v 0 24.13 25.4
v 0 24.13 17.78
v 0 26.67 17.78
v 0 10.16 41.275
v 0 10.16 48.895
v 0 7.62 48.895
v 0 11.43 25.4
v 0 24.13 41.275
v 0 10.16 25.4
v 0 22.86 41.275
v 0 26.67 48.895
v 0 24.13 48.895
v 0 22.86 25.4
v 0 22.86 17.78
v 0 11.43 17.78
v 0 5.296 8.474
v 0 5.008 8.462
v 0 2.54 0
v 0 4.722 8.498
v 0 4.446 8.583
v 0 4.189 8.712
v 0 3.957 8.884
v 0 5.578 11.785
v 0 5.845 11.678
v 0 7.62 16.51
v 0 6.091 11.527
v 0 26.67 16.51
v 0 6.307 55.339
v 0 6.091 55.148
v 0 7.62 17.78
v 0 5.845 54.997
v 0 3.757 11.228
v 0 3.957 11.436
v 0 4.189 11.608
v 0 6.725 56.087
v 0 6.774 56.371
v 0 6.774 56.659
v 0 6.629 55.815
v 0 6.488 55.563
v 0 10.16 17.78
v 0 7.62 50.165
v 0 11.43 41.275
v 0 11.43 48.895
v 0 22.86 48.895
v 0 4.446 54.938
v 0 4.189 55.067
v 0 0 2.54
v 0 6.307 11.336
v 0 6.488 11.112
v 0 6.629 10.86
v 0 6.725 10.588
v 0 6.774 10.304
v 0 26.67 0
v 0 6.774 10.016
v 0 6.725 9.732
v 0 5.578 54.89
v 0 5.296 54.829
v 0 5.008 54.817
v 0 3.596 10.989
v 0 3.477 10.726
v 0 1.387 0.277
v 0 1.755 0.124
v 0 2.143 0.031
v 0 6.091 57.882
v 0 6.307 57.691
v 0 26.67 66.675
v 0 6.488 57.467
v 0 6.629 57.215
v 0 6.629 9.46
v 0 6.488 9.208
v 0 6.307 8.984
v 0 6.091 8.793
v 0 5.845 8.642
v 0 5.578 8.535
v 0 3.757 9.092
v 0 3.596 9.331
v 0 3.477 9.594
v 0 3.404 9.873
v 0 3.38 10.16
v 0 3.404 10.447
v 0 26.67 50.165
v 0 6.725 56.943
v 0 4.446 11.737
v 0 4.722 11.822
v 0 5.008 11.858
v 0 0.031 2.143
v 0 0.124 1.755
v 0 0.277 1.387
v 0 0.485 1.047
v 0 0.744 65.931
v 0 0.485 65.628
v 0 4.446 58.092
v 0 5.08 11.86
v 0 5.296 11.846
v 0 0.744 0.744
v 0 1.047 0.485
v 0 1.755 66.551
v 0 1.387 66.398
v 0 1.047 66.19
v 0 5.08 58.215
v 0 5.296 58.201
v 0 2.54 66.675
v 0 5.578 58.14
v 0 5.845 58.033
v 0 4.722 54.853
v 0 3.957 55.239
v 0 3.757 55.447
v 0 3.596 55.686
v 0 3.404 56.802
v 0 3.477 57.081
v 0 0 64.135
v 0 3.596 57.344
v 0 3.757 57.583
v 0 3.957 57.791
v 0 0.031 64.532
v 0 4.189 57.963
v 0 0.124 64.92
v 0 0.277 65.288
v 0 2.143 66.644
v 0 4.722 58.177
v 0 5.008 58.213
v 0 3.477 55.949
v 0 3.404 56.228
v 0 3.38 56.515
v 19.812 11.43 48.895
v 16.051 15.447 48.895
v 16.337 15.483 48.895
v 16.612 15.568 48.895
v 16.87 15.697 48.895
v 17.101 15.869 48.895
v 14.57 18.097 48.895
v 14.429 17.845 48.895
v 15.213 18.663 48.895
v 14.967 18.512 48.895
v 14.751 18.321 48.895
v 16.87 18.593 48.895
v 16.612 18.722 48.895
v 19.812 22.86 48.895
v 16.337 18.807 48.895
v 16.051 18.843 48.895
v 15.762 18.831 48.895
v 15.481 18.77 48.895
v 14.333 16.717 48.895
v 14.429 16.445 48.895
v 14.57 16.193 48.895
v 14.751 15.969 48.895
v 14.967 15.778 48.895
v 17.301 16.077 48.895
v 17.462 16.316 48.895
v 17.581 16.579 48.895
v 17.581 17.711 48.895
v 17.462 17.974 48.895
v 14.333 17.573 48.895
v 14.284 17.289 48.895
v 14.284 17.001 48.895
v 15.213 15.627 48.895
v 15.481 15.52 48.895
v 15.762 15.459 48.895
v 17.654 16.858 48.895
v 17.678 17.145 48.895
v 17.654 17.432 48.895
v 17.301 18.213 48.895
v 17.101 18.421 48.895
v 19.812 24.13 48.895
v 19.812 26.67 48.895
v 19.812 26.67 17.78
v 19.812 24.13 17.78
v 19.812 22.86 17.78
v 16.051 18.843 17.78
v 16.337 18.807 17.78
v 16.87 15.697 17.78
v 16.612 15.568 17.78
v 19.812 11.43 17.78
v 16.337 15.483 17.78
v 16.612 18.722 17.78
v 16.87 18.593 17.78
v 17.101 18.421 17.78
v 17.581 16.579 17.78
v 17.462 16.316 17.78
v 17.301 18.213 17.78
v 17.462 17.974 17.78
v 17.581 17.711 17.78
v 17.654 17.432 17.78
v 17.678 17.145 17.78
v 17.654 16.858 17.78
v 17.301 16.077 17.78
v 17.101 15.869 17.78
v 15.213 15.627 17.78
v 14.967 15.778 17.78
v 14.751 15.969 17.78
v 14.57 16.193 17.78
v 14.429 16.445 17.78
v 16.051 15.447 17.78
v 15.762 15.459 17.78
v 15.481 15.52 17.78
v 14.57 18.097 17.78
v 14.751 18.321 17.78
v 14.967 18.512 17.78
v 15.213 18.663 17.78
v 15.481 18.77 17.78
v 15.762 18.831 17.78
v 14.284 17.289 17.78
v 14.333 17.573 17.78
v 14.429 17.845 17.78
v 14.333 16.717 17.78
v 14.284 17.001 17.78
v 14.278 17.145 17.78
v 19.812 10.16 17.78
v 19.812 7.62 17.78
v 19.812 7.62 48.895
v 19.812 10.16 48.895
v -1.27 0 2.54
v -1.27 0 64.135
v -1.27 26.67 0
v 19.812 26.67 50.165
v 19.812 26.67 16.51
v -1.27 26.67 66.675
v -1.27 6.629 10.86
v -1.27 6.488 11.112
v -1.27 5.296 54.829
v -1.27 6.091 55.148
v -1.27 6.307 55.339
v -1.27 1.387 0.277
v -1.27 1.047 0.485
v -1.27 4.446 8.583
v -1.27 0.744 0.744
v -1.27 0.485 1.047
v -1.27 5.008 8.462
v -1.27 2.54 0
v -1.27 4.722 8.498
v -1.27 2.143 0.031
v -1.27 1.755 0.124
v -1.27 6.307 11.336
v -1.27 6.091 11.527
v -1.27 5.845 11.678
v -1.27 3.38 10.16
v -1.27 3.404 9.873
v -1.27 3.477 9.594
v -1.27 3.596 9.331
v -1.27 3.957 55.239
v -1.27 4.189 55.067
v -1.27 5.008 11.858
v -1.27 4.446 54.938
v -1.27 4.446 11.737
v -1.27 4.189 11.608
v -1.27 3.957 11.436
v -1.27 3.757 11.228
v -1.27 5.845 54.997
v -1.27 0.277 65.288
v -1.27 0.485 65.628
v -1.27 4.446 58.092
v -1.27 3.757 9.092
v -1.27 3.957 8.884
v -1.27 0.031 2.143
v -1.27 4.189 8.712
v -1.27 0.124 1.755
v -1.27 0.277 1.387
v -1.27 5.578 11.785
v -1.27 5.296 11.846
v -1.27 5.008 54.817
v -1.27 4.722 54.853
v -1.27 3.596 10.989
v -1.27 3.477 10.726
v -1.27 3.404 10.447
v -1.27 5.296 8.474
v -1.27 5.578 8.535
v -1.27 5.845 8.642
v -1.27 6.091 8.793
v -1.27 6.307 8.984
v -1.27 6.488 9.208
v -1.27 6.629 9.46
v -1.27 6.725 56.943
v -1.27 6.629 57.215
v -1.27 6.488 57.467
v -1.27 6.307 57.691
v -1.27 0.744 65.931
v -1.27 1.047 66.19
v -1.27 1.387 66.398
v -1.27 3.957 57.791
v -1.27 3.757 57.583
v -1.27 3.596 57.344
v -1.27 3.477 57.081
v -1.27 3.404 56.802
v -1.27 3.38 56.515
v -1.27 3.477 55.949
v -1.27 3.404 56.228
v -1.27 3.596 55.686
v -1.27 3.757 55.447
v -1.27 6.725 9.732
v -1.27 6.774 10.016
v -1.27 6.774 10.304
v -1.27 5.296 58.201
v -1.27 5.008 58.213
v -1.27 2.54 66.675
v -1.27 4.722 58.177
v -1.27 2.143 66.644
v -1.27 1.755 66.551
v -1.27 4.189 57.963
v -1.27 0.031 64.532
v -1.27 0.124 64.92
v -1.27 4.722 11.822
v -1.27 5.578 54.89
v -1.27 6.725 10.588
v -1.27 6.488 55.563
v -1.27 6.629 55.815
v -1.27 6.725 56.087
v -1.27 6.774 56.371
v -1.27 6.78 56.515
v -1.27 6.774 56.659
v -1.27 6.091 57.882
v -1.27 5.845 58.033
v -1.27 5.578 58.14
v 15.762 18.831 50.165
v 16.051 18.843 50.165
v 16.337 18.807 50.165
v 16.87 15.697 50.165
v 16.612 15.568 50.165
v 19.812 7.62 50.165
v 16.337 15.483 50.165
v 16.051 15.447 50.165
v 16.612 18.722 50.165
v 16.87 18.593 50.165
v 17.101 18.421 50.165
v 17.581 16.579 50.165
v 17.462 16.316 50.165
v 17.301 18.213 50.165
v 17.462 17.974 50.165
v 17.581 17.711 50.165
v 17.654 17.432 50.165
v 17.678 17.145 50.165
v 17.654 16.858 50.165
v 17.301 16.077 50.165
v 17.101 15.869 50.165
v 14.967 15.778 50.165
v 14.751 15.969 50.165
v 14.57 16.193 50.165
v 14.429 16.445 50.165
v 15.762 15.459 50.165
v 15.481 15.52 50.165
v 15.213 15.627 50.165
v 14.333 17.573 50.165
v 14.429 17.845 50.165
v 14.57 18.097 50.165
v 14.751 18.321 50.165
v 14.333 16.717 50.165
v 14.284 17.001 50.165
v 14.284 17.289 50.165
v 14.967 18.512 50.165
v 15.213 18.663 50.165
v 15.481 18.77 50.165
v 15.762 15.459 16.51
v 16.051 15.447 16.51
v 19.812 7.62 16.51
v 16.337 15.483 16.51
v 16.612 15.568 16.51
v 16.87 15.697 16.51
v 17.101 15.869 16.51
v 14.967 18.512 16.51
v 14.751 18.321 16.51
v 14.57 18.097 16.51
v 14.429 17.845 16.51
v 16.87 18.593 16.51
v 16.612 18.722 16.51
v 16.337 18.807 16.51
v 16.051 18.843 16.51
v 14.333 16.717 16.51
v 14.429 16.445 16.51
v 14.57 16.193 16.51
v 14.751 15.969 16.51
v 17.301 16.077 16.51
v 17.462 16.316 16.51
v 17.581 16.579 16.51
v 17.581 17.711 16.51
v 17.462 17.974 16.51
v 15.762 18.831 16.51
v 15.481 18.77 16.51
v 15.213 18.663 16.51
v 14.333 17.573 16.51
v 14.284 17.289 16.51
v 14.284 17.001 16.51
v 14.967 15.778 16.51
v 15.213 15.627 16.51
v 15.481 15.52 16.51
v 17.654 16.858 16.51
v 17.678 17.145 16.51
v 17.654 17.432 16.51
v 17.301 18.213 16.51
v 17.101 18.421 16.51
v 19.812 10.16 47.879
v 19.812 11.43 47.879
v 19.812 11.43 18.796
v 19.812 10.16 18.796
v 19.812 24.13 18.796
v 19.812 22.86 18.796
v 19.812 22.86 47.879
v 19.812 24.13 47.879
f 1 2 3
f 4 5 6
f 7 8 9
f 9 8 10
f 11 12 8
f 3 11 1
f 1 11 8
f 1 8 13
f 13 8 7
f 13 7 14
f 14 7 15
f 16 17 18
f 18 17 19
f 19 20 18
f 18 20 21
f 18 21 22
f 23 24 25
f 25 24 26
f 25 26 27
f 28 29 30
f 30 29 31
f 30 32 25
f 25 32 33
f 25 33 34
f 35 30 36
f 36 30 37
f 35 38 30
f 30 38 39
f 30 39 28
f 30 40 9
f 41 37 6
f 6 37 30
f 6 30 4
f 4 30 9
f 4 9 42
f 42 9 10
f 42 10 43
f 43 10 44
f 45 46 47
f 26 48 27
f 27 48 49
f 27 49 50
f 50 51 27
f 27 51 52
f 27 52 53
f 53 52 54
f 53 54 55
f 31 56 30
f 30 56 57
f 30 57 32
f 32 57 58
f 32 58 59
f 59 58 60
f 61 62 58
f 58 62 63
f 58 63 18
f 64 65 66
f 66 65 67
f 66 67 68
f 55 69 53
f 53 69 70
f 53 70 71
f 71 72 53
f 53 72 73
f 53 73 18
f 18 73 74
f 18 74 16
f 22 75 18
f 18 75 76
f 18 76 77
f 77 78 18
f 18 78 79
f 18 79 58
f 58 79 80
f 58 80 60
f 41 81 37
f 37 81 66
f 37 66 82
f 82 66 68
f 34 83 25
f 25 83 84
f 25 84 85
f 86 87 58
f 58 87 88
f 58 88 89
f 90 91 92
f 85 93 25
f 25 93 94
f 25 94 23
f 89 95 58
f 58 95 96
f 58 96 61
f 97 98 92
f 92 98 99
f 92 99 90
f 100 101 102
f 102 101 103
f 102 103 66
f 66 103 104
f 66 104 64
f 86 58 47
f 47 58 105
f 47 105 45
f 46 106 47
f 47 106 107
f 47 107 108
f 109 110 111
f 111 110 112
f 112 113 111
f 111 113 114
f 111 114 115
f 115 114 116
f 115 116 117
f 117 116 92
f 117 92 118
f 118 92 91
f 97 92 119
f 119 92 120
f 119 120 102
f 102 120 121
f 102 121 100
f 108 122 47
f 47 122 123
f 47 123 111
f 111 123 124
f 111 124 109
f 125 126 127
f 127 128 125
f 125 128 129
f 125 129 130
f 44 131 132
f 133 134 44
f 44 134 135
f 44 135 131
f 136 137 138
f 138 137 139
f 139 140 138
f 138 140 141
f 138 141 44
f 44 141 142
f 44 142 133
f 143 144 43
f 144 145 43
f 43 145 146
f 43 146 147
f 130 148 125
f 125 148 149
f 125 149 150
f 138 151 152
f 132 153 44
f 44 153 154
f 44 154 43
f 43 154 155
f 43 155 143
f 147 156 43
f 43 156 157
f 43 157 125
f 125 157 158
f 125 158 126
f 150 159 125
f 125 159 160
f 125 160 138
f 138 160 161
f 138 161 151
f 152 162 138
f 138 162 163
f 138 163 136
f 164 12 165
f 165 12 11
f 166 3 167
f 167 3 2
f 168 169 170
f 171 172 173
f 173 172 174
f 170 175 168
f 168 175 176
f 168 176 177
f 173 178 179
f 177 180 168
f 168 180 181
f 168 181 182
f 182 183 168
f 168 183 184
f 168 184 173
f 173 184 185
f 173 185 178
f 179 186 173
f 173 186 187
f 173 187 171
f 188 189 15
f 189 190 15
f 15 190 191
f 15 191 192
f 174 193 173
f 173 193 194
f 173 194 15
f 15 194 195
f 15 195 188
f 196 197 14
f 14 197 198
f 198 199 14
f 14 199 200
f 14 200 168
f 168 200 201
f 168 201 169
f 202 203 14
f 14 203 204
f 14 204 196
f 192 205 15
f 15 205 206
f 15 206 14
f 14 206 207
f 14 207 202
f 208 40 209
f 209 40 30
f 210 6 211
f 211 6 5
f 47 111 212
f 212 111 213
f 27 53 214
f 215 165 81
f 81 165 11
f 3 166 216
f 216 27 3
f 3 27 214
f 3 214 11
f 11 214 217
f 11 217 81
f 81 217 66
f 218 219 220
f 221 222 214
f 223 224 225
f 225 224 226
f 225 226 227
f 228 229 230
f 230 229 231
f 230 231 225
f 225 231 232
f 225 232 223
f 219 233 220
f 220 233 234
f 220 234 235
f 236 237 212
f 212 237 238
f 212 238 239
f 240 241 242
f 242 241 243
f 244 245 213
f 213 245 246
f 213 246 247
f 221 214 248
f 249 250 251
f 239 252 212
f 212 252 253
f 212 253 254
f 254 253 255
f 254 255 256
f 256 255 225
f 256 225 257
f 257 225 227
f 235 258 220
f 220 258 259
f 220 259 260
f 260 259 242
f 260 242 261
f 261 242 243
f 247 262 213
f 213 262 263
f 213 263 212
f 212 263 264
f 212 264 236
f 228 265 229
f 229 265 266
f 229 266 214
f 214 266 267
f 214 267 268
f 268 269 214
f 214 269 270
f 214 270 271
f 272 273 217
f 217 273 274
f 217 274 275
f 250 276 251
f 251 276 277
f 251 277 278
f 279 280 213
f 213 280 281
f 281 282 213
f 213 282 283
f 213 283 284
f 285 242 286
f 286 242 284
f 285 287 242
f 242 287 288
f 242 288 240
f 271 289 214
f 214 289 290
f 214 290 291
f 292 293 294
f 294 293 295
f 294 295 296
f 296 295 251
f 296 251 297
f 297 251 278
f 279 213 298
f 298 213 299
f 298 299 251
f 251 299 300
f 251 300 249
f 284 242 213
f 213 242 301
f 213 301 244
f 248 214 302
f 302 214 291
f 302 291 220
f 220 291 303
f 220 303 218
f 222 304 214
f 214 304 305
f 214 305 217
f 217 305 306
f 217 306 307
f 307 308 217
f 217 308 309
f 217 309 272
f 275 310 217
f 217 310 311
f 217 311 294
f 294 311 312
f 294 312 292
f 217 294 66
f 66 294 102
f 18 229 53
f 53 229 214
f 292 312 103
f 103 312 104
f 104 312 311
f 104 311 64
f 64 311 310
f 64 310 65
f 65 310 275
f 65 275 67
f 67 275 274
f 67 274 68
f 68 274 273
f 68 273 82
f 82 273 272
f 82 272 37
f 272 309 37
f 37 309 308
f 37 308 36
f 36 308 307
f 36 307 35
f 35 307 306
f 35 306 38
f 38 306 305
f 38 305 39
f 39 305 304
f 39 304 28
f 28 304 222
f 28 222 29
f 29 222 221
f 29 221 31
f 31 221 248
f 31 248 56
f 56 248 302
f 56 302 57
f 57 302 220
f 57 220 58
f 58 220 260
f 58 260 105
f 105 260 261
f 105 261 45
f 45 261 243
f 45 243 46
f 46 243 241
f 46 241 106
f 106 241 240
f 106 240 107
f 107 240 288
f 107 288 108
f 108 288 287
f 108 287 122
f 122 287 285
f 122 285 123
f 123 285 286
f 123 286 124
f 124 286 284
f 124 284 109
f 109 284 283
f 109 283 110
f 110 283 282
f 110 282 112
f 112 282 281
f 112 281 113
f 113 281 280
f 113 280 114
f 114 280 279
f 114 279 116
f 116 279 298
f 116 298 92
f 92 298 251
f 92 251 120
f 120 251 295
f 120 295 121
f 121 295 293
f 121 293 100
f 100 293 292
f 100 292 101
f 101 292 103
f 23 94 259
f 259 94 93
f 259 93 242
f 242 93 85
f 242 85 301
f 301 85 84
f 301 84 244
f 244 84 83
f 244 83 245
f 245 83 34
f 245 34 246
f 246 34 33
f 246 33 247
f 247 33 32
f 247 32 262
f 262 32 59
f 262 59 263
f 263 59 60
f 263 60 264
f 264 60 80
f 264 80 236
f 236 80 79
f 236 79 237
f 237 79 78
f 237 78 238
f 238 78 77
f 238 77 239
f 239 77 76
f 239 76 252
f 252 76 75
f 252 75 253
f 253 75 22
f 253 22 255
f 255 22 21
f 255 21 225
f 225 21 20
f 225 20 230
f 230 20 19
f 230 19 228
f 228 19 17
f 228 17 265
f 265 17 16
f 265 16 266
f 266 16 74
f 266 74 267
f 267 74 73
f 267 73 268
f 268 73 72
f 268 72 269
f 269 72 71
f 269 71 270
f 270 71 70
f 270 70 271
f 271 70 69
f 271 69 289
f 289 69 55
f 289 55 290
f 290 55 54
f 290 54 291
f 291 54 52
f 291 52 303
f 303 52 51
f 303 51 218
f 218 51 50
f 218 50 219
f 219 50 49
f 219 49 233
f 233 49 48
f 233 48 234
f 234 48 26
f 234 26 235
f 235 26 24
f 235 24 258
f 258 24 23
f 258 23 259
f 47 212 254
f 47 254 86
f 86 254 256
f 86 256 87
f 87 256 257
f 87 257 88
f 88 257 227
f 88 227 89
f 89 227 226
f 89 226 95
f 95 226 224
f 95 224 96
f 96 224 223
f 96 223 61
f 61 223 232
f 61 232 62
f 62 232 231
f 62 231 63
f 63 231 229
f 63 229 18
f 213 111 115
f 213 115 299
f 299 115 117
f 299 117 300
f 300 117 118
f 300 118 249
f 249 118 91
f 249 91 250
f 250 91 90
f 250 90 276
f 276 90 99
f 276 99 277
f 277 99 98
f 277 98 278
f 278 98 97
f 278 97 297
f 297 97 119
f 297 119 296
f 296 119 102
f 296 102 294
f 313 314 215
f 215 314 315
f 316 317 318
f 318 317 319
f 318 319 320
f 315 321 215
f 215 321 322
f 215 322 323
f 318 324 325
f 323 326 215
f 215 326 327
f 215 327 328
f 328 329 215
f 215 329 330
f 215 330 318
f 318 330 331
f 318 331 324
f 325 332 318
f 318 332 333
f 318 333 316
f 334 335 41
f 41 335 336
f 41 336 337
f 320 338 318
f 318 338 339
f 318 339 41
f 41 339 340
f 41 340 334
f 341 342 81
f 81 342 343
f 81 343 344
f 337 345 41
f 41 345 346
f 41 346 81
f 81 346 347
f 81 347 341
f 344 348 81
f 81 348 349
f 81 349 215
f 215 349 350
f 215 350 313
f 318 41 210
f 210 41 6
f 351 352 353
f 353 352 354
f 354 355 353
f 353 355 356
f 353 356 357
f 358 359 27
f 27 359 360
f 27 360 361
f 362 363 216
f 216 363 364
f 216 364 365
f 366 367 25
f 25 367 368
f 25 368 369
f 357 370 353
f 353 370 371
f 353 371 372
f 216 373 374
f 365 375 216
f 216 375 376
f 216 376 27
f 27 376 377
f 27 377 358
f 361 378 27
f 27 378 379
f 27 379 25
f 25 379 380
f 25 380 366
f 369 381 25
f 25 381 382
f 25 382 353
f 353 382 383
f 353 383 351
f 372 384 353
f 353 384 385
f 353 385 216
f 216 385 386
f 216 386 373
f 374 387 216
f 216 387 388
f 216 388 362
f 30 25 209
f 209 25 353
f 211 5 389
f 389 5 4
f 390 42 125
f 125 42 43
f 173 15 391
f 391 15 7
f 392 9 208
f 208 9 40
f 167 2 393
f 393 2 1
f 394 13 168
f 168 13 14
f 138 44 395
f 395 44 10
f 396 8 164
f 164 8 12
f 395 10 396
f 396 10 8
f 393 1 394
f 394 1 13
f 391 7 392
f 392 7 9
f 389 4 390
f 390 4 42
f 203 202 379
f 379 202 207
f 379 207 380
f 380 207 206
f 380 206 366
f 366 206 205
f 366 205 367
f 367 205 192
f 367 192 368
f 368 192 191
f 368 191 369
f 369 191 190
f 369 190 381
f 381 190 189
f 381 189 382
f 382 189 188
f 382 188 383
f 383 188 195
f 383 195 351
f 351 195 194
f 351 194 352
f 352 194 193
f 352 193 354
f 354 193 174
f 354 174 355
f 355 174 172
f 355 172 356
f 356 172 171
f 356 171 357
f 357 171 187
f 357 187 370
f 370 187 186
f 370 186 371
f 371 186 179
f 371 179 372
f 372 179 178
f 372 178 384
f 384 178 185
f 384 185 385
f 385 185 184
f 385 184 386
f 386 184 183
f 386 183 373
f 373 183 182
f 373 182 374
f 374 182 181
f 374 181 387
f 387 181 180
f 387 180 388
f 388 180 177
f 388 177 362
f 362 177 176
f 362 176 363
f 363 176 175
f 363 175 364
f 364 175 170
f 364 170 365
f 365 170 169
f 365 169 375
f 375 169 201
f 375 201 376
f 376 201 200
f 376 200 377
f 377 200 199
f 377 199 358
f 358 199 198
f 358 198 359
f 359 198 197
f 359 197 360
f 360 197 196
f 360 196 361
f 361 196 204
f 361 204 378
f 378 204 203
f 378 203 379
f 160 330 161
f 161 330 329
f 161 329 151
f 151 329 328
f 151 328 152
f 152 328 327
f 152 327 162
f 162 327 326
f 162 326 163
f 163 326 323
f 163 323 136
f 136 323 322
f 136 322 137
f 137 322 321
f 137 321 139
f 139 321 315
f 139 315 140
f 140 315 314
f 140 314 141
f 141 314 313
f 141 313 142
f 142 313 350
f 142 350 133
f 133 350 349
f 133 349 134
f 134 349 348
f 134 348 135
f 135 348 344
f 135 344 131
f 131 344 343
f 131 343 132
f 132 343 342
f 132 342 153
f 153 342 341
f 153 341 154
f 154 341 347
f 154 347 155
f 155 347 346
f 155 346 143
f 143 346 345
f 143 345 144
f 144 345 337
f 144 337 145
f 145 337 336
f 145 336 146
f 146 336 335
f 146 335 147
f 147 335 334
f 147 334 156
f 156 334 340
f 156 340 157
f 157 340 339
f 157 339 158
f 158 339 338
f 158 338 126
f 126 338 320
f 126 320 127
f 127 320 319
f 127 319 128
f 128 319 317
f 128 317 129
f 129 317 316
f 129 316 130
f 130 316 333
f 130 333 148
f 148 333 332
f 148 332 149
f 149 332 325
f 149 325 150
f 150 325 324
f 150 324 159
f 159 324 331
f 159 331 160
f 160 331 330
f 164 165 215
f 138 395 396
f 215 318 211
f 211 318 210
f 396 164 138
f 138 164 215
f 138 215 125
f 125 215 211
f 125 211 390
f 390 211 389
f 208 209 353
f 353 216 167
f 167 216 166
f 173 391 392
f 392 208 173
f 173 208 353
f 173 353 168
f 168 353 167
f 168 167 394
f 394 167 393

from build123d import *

# Parameters (mm, degrees)
BOSS_EXTRUDE1_DEPTH = 66.675
SKETCH3_R           = 1.7
CUT_EXTRUDE1_DEPTH  = 77.603742892
SKETCH6_R           = 1.7
CUT_EXTRUDE2_DEPTH  = 77.170890273
FILLET1_R           = 2.54
SKETCH8_W           = 22.86
SKETCH8_H           = 1.27
BOSS_EXTRUDE2_DEPTH = 17.78
CUT_EXTRUDE5_DEPTH  = 17.78
SKETCH13_W          = 7.62
SKETCH13_H          = 1.27
BOSS_EXTRUDE3_DEPTH = 22.86
CUT_EXTRUDE6_DEPTH  = 22.86
SKETCH15_R          = 1.7
CUT_EXTRUDE7_DEPTH  = 43.18
SKETCH16_W          = 3.048
SKETCH16_H          = 33.655
CUT_EXTRUDE8_DEPTH  = 43.18


with BuildPart() as part:
    # Sketch2 → Boss-Extrude1 (new body)
    with BuildSketch(Plane.XY):
        Polygon((0, 0), (-1.27, 0), (-1.27, 26.67), (25.4, 26.67), (25.4, 25.4), (0, 25.4), align=None)
    extrude(amount=BOSS_EXTRUDE1_DEPTH)

    # Sketch3 → Cut-Extrude1 (cut, through all)
    with BuildSketch(Plane.ZY.offset(1.27)):
        with Locations(Location((10.16, 5.08, 0), (0, 0, 270))):
            Circle(SKETCH3_R)
        with Locations((56.515, 5.08)):
            Circle(SKETCH3_R)
    extrude(amount=-CUT_EXTRUDE1_DEPTH, mode=Mode.SUBTRACT)

    # Sketch6 → Cut-Extrude2 (cut, through all)
    with BuildSketch(Plane(origin=(0, 26.67, 0), x_dir=(1, 0, 0), z_dir=(0, 1, 0))):
        with Locations(Location((20.32, -10.16, 0), (0, 0, 270))):
            Circle(SKETCH6_R)
        with Locations(Location((20.32, -56.515, 0), (0, 0, 270))):
            Circle(SKETCH6_R)
    extrude(amount=-CUT_EXTRUDE2_DEPTH, mode=Mode.SUBTRACT)

    # Fillet1
    fillet1_edges = [part.edges().sort_by_distance(p)[0] for p in [
        (25.4, 26.035, 66.675),
        (-0.635, 0, 66.675),
        (25.4, 26.035, 0),
        (-0.635, 0, 0),
    ]]
    fillet(fillet1_edges, radius=FILLET1_R)

    # Sketch8 → Boss-Extrude2 (add)
    with BuildSketch(Plane.XZ.offset(-25.4)):
        with Locations((11.43, 49.53)):
            Rectangle(SKETCH8_W, SKETCH8_H)
        with Locations((11.43, 17.145)):
            Rectangle(SKETCH8_W, SKETCH8_H)
    extrude(amount=BOSS_EXTRUDE2_DEPTH)

    # Sketch12 → Cut-Extrude5 (cut)
    with BuildSketch(Plane.XZ.offset(-25.4)):
        Polygon((0, 50.165), (22.86, 50.165), (22.86, 48.895), (0, 48.895), (0, 17.78), (22.86, 17.78), (22.86, 16.51), (0, 16.51), (0, 0), (31.875752577, 0), (31.875752577, 66.675), (0, 66.675), align=None)
    extrude(amount=-CUT_EXTRUDE5_DEPTH, mode=Mode.SUBTRACT)

    # Sketch13 → Boss-Extrude3 (add)
    with BuildSketch(Plane(origin=(0, 0, 0), x_dir=(0, 0, -1), z_dir=(1, 0, 0))):
        with Locations((-45.085, 10.795)):
            Rectangle(SKETCH13_W, SKETCH13_H)
        with Locations((-21.59, 10.795)):
            Rectangle(SKETCH13_W, SKETCH13_H)
        with Locations((-21.59, 23.495)):
            Rectangle(SKETCH13_W, SKETCH13_H)
        with Locations((-45.085, 23.495)):
            Rectangle(SKETCH13_W, SKETCH13_H)
    extrude(amount=BOSS_EXTRUDE3_DEPTH)

    # Sketch14 → Cut-Extrude6 (cut)
    with BuildSketch(Plane.XZ.offset(-10.16)):
        Polygon((0, 41.275), (22.86, 41.275), (22.86, 48.895), align=None)
        Polygon((22.86, 25.4), (22.86, 17.78), (0, 25.4), align=None)
    extrude(amount=-CUT_EXTRUDE6_DEPTH, mode=Mode.SUBTRACT)

    # Sketch15 → Cut-Extrude7 (cut)
    with BuildSketch(Plane.XY.offset(50.165)):
        with Locations((15.978351822, 17.145)):
            Circle(SKETCH15_R)
    extrude(amount=-CUT_EXTRUDE7_DEPTH, mode=Mode.SUBTRACT)

    # Sketch16 → Cut-Extrude8 (cut)
    with BuildSketch(Plane(origin=(0, 26.67, 0), x_dir=(1, 0, 0), z_dir=(0, 1, 0))):
        with Locations((21.336, -33.3375)):
            Rectangle(SKETCH16_W, SKETCH16_H)
    extrude(amount=-CUT_EXTRUDE8_DEPTH, mode=Mode.SUBTRACT)


solid = part.part
